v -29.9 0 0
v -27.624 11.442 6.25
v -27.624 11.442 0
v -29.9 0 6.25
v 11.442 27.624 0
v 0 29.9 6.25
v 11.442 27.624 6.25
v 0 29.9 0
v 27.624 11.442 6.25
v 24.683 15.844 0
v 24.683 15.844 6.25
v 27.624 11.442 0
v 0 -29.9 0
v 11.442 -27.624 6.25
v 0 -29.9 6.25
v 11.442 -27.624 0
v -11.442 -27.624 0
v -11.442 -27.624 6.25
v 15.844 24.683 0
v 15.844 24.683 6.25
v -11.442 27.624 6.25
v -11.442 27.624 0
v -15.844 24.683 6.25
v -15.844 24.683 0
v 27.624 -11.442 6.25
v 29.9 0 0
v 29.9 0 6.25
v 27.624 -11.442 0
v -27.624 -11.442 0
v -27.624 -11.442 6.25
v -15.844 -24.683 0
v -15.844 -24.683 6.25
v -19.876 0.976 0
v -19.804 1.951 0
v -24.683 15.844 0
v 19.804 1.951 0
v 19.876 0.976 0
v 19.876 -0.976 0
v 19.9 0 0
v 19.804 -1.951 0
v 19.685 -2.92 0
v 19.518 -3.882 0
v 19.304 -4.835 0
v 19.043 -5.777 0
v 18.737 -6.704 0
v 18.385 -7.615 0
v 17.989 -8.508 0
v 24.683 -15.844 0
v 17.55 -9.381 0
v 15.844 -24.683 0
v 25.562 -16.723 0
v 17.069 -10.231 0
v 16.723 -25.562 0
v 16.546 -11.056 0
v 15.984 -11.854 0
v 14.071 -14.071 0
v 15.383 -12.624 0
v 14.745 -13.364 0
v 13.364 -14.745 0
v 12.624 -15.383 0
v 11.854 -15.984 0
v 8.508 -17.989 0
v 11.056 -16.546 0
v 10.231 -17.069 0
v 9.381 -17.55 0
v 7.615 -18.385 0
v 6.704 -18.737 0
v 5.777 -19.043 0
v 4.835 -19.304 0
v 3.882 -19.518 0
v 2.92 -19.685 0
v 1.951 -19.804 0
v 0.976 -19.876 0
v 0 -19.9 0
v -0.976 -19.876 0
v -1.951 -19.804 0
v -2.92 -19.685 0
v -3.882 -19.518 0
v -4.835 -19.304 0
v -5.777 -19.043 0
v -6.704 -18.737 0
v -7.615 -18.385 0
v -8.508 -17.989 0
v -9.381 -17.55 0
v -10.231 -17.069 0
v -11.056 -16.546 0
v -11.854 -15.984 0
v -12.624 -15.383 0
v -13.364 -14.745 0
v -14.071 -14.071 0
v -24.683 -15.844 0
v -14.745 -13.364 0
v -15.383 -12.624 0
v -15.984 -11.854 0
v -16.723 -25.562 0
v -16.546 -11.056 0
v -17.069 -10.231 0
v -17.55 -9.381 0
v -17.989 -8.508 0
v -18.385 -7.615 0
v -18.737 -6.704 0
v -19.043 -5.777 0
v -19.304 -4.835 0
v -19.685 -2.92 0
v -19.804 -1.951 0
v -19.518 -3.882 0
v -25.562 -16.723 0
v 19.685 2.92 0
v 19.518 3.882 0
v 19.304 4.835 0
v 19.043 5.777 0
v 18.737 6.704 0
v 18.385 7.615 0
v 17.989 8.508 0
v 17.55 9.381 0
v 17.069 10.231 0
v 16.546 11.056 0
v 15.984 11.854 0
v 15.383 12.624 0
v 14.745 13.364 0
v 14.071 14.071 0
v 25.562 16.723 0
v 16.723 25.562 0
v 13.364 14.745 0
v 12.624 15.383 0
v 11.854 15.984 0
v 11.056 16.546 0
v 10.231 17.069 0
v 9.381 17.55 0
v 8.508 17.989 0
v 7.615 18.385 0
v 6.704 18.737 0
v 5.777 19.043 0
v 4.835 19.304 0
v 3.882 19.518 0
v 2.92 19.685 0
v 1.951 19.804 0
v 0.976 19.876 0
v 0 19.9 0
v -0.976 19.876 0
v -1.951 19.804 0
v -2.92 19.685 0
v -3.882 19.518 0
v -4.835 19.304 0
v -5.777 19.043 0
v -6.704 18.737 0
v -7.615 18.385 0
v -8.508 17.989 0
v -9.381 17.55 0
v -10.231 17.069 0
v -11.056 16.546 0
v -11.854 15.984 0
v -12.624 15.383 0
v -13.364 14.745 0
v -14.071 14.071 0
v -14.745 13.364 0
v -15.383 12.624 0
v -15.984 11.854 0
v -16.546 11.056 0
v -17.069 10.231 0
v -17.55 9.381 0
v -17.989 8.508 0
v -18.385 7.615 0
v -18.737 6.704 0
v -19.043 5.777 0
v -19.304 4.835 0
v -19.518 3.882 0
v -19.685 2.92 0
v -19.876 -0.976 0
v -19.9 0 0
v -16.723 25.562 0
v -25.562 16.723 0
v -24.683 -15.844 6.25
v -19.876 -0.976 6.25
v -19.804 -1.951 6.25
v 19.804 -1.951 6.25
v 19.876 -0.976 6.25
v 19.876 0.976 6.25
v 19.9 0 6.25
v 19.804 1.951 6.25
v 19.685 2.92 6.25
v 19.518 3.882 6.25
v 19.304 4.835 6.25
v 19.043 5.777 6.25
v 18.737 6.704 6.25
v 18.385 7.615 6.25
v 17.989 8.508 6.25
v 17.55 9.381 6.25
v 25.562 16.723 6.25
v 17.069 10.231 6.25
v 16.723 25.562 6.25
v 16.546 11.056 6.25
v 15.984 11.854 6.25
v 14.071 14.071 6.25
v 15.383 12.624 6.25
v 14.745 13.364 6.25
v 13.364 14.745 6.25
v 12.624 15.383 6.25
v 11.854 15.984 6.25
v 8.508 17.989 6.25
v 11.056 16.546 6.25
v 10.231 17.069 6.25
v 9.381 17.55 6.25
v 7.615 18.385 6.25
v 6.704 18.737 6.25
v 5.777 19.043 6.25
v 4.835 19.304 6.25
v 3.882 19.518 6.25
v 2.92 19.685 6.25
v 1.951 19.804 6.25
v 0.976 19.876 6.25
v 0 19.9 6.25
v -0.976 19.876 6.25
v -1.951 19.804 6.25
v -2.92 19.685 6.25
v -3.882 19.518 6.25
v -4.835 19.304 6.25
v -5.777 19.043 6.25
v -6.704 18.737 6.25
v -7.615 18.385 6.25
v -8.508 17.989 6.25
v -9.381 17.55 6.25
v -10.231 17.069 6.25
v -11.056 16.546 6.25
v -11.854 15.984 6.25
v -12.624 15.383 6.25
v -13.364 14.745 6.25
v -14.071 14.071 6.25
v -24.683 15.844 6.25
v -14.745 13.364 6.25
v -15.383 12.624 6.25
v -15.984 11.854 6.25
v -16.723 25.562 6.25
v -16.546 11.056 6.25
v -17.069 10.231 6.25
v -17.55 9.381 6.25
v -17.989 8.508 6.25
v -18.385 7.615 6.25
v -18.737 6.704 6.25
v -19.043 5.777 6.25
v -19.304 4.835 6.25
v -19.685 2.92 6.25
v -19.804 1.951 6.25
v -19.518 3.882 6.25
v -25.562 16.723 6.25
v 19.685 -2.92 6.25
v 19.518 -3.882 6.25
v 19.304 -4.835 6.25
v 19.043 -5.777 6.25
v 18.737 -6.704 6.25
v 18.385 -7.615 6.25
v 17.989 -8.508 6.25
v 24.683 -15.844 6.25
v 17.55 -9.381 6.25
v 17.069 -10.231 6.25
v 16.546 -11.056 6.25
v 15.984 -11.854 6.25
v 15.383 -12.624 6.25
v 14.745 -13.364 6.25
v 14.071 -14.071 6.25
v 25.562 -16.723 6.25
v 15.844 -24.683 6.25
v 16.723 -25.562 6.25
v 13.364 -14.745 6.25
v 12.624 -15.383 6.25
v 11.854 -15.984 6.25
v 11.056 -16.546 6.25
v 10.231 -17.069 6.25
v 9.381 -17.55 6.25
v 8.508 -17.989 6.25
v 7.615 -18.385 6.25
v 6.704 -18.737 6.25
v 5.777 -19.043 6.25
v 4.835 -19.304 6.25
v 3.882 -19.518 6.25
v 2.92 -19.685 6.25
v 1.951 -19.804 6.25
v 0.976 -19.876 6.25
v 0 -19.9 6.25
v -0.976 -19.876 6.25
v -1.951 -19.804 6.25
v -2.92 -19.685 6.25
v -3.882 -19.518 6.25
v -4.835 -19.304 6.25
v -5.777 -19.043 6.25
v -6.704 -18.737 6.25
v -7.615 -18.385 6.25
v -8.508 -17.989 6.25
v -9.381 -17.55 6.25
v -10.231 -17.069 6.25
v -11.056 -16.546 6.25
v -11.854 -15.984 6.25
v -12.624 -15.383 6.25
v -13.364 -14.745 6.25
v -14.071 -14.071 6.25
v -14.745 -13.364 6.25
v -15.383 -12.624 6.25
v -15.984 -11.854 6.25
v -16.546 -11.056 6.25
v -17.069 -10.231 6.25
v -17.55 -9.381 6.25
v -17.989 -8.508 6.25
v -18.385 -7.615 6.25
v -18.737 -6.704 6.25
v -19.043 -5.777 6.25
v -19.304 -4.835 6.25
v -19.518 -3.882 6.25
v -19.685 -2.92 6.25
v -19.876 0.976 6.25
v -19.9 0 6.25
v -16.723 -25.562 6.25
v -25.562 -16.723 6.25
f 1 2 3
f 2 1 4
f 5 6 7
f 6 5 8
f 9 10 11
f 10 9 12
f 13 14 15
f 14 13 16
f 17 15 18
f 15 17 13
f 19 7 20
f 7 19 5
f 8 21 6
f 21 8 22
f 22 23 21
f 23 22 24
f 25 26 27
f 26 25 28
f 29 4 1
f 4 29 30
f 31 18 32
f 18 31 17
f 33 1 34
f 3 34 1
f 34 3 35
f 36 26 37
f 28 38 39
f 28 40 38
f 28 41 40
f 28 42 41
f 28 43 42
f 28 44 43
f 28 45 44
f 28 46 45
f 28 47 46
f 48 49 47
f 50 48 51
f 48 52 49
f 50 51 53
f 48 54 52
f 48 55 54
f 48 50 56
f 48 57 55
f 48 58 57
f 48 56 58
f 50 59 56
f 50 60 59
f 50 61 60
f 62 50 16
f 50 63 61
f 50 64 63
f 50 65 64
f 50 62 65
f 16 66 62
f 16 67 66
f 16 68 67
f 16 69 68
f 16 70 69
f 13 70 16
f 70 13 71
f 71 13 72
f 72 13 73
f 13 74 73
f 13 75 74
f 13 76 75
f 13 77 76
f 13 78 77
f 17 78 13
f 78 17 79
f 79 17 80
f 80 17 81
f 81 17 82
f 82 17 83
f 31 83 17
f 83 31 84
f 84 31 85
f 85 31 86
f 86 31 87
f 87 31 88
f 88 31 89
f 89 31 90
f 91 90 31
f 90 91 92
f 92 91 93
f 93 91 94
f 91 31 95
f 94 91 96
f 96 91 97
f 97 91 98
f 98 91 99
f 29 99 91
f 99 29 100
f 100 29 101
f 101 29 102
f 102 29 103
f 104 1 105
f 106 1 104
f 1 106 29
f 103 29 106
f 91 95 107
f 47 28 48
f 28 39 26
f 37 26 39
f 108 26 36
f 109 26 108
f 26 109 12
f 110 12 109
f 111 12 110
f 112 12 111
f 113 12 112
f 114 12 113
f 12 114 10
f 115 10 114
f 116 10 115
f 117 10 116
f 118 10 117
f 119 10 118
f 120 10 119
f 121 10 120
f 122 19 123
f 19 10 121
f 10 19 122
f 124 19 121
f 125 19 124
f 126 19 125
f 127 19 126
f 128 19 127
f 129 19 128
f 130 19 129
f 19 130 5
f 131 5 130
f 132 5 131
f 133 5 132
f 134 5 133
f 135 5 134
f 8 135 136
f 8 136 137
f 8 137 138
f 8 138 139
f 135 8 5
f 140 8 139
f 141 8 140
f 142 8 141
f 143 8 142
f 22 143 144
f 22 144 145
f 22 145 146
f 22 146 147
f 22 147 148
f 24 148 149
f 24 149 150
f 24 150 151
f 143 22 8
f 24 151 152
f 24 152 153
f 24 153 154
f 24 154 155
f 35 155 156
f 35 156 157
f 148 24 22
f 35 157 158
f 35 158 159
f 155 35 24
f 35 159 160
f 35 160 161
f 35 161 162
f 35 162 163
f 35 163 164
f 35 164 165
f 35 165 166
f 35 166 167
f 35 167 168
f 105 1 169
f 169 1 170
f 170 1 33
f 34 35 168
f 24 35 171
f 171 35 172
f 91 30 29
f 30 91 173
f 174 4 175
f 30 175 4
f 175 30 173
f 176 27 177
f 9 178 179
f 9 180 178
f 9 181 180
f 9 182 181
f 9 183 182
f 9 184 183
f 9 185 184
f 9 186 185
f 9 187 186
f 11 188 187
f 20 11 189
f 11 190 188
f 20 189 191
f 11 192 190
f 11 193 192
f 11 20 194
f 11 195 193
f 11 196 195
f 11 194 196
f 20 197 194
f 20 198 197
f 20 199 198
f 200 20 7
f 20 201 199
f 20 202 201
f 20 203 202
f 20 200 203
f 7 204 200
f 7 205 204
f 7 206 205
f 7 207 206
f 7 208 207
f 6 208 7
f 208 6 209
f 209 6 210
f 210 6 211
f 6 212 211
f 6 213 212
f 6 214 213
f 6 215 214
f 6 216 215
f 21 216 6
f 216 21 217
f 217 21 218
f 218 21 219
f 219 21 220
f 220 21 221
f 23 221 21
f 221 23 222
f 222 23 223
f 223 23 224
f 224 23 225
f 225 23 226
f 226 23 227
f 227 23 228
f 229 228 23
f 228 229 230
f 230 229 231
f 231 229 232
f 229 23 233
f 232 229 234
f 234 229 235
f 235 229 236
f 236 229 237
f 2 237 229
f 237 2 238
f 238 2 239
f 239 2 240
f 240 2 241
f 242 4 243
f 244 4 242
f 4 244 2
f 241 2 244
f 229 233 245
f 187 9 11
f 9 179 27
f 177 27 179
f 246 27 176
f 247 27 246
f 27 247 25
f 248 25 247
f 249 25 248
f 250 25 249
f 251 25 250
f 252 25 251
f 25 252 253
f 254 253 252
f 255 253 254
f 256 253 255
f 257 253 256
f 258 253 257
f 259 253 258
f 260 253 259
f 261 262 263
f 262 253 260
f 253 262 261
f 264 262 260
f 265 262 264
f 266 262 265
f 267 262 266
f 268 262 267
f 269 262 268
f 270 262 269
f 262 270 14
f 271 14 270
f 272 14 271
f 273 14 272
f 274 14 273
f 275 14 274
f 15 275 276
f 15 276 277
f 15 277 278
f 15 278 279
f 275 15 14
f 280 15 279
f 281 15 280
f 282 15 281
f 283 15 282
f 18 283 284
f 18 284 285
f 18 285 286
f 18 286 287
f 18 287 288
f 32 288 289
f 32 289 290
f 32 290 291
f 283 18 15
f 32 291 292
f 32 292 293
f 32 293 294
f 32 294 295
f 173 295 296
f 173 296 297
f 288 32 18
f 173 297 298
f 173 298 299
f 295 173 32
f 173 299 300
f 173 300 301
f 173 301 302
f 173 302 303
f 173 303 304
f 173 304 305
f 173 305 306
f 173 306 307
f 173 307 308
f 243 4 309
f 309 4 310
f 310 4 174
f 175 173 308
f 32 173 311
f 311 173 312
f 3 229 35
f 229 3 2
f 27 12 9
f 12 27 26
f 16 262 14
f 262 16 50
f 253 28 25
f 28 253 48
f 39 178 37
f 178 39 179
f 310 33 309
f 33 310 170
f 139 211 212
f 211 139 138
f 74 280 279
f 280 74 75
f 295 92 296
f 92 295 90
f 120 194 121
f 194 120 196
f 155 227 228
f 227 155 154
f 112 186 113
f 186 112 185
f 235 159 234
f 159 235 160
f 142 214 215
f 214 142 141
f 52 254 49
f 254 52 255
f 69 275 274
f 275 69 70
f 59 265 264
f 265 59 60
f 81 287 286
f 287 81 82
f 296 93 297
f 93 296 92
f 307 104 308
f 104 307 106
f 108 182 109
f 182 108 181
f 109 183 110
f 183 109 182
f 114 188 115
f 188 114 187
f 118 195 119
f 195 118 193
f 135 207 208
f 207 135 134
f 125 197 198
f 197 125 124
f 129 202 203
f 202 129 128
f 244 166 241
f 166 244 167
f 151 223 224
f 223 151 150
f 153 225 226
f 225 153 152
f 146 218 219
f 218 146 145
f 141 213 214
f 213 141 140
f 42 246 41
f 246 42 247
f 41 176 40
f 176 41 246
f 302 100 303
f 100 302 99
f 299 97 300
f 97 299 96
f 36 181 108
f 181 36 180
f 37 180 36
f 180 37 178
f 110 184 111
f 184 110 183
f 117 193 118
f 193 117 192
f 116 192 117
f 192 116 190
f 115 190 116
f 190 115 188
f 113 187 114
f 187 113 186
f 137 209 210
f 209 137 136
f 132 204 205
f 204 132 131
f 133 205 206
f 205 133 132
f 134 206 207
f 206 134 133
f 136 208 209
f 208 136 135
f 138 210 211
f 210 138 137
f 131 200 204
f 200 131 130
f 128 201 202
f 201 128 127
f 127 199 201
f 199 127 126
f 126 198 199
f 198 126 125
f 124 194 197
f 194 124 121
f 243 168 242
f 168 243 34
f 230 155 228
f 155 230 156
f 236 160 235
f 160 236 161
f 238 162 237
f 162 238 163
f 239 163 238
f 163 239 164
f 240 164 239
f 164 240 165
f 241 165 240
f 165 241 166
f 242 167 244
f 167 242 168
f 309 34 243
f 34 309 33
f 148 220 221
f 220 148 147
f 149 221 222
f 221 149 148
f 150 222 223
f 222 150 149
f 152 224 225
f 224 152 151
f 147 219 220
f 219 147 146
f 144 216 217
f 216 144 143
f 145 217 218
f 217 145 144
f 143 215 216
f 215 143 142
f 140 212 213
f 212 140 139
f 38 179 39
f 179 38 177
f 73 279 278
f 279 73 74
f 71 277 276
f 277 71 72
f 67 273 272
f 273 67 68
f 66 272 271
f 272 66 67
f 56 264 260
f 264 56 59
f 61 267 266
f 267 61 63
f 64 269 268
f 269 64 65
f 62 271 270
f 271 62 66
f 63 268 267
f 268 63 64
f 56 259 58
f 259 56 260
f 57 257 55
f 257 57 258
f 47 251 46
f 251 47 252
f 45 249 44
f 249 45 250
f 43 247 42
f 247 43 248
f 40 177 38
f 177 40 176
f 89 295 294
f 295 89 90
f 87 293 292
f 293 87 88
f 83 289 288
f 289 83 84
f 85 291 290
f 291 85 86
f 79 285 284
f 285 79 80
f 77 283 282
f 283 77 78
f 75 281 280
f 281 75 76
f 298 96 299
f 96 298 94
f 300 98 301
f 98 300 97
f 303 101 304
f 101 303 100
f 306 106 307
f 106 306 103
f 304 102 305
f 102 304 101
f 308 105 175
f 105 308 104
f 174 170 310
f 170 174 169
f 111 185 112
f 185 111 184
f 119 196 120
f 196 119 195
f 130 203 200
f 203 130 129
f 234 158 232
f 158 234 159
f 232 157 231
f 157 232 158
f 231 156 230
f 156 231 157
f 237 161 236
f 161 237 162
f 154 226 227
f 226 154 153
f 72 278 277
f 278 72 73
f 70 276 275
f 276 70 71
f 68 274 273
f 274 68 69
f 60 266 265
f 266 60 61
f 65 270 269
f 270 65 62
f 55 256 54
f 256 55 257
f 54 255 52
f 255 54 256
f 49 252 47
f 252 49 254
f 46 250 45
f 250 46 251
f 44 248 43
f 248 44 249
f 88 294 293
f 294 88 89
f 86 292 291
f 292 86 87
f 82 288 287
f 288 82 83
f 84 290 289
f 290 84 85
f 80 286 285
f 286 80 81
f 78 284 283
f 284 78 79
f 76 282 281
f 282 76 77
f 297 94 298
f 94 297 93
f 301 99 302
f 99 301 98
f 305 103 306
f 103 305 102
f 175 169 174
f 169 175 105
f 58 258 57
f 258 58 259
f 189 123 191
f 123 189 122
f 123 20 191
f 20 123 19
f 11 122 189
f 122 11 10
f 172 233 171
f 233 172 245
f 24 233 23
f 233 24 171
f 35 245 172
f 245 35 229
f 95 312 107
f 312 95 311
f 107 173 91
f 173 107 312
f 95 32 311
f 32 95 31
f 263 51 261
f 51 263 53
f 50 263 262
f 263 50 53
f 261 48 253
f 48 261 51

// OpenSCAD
durchmesser_lampenfassung = 39.8;

module Birne() {
    d = 64;
    h = 147;
    translate([0, 0, h-d/2]) sphere(d=d, $fn=64);
    translate([0, 0, 28]) cylinder(d1=27, d2=27+4, h=3, $fn=64);
    translate([0, 0, 31]) cylinder(d1=27+4, d2=d, h=h-d/2-28-3-1.5, $fn=64);
    cylinder(d1=7, d2=12, h=2, $fn=64);
    translate([0, 0, 2]) cylinder(d1=27-6, d2=27, h=6, $fn=64);
    translate([0, 0, 8]) cylinder(d=27, h=20, $fn=64);
}

module Fassungspassung(innendurchmesser, breite, dicke) {
    difference() {
        cylinder(d=innendurchmesser+breite, h=dicke, $fn=4*4);
        translate([0, 0, -1]) cylinder(d=innendurchmesser, h=dicke+2, $fn=32*4);
    }
    for(i=[0, 1, 2, 3]) {
        rotate([0, 0, 45+i*90]) translate([innendurchmesser/2+breite/4, -1*dicke, 0]) cube([breite/4, 2*dicke, dicke]);
    }
}

//color("white") translate([0, 0, -15]) Birne();
Fassungspassung(durchmesser_lampenfassung, 20, 12.5/2);
